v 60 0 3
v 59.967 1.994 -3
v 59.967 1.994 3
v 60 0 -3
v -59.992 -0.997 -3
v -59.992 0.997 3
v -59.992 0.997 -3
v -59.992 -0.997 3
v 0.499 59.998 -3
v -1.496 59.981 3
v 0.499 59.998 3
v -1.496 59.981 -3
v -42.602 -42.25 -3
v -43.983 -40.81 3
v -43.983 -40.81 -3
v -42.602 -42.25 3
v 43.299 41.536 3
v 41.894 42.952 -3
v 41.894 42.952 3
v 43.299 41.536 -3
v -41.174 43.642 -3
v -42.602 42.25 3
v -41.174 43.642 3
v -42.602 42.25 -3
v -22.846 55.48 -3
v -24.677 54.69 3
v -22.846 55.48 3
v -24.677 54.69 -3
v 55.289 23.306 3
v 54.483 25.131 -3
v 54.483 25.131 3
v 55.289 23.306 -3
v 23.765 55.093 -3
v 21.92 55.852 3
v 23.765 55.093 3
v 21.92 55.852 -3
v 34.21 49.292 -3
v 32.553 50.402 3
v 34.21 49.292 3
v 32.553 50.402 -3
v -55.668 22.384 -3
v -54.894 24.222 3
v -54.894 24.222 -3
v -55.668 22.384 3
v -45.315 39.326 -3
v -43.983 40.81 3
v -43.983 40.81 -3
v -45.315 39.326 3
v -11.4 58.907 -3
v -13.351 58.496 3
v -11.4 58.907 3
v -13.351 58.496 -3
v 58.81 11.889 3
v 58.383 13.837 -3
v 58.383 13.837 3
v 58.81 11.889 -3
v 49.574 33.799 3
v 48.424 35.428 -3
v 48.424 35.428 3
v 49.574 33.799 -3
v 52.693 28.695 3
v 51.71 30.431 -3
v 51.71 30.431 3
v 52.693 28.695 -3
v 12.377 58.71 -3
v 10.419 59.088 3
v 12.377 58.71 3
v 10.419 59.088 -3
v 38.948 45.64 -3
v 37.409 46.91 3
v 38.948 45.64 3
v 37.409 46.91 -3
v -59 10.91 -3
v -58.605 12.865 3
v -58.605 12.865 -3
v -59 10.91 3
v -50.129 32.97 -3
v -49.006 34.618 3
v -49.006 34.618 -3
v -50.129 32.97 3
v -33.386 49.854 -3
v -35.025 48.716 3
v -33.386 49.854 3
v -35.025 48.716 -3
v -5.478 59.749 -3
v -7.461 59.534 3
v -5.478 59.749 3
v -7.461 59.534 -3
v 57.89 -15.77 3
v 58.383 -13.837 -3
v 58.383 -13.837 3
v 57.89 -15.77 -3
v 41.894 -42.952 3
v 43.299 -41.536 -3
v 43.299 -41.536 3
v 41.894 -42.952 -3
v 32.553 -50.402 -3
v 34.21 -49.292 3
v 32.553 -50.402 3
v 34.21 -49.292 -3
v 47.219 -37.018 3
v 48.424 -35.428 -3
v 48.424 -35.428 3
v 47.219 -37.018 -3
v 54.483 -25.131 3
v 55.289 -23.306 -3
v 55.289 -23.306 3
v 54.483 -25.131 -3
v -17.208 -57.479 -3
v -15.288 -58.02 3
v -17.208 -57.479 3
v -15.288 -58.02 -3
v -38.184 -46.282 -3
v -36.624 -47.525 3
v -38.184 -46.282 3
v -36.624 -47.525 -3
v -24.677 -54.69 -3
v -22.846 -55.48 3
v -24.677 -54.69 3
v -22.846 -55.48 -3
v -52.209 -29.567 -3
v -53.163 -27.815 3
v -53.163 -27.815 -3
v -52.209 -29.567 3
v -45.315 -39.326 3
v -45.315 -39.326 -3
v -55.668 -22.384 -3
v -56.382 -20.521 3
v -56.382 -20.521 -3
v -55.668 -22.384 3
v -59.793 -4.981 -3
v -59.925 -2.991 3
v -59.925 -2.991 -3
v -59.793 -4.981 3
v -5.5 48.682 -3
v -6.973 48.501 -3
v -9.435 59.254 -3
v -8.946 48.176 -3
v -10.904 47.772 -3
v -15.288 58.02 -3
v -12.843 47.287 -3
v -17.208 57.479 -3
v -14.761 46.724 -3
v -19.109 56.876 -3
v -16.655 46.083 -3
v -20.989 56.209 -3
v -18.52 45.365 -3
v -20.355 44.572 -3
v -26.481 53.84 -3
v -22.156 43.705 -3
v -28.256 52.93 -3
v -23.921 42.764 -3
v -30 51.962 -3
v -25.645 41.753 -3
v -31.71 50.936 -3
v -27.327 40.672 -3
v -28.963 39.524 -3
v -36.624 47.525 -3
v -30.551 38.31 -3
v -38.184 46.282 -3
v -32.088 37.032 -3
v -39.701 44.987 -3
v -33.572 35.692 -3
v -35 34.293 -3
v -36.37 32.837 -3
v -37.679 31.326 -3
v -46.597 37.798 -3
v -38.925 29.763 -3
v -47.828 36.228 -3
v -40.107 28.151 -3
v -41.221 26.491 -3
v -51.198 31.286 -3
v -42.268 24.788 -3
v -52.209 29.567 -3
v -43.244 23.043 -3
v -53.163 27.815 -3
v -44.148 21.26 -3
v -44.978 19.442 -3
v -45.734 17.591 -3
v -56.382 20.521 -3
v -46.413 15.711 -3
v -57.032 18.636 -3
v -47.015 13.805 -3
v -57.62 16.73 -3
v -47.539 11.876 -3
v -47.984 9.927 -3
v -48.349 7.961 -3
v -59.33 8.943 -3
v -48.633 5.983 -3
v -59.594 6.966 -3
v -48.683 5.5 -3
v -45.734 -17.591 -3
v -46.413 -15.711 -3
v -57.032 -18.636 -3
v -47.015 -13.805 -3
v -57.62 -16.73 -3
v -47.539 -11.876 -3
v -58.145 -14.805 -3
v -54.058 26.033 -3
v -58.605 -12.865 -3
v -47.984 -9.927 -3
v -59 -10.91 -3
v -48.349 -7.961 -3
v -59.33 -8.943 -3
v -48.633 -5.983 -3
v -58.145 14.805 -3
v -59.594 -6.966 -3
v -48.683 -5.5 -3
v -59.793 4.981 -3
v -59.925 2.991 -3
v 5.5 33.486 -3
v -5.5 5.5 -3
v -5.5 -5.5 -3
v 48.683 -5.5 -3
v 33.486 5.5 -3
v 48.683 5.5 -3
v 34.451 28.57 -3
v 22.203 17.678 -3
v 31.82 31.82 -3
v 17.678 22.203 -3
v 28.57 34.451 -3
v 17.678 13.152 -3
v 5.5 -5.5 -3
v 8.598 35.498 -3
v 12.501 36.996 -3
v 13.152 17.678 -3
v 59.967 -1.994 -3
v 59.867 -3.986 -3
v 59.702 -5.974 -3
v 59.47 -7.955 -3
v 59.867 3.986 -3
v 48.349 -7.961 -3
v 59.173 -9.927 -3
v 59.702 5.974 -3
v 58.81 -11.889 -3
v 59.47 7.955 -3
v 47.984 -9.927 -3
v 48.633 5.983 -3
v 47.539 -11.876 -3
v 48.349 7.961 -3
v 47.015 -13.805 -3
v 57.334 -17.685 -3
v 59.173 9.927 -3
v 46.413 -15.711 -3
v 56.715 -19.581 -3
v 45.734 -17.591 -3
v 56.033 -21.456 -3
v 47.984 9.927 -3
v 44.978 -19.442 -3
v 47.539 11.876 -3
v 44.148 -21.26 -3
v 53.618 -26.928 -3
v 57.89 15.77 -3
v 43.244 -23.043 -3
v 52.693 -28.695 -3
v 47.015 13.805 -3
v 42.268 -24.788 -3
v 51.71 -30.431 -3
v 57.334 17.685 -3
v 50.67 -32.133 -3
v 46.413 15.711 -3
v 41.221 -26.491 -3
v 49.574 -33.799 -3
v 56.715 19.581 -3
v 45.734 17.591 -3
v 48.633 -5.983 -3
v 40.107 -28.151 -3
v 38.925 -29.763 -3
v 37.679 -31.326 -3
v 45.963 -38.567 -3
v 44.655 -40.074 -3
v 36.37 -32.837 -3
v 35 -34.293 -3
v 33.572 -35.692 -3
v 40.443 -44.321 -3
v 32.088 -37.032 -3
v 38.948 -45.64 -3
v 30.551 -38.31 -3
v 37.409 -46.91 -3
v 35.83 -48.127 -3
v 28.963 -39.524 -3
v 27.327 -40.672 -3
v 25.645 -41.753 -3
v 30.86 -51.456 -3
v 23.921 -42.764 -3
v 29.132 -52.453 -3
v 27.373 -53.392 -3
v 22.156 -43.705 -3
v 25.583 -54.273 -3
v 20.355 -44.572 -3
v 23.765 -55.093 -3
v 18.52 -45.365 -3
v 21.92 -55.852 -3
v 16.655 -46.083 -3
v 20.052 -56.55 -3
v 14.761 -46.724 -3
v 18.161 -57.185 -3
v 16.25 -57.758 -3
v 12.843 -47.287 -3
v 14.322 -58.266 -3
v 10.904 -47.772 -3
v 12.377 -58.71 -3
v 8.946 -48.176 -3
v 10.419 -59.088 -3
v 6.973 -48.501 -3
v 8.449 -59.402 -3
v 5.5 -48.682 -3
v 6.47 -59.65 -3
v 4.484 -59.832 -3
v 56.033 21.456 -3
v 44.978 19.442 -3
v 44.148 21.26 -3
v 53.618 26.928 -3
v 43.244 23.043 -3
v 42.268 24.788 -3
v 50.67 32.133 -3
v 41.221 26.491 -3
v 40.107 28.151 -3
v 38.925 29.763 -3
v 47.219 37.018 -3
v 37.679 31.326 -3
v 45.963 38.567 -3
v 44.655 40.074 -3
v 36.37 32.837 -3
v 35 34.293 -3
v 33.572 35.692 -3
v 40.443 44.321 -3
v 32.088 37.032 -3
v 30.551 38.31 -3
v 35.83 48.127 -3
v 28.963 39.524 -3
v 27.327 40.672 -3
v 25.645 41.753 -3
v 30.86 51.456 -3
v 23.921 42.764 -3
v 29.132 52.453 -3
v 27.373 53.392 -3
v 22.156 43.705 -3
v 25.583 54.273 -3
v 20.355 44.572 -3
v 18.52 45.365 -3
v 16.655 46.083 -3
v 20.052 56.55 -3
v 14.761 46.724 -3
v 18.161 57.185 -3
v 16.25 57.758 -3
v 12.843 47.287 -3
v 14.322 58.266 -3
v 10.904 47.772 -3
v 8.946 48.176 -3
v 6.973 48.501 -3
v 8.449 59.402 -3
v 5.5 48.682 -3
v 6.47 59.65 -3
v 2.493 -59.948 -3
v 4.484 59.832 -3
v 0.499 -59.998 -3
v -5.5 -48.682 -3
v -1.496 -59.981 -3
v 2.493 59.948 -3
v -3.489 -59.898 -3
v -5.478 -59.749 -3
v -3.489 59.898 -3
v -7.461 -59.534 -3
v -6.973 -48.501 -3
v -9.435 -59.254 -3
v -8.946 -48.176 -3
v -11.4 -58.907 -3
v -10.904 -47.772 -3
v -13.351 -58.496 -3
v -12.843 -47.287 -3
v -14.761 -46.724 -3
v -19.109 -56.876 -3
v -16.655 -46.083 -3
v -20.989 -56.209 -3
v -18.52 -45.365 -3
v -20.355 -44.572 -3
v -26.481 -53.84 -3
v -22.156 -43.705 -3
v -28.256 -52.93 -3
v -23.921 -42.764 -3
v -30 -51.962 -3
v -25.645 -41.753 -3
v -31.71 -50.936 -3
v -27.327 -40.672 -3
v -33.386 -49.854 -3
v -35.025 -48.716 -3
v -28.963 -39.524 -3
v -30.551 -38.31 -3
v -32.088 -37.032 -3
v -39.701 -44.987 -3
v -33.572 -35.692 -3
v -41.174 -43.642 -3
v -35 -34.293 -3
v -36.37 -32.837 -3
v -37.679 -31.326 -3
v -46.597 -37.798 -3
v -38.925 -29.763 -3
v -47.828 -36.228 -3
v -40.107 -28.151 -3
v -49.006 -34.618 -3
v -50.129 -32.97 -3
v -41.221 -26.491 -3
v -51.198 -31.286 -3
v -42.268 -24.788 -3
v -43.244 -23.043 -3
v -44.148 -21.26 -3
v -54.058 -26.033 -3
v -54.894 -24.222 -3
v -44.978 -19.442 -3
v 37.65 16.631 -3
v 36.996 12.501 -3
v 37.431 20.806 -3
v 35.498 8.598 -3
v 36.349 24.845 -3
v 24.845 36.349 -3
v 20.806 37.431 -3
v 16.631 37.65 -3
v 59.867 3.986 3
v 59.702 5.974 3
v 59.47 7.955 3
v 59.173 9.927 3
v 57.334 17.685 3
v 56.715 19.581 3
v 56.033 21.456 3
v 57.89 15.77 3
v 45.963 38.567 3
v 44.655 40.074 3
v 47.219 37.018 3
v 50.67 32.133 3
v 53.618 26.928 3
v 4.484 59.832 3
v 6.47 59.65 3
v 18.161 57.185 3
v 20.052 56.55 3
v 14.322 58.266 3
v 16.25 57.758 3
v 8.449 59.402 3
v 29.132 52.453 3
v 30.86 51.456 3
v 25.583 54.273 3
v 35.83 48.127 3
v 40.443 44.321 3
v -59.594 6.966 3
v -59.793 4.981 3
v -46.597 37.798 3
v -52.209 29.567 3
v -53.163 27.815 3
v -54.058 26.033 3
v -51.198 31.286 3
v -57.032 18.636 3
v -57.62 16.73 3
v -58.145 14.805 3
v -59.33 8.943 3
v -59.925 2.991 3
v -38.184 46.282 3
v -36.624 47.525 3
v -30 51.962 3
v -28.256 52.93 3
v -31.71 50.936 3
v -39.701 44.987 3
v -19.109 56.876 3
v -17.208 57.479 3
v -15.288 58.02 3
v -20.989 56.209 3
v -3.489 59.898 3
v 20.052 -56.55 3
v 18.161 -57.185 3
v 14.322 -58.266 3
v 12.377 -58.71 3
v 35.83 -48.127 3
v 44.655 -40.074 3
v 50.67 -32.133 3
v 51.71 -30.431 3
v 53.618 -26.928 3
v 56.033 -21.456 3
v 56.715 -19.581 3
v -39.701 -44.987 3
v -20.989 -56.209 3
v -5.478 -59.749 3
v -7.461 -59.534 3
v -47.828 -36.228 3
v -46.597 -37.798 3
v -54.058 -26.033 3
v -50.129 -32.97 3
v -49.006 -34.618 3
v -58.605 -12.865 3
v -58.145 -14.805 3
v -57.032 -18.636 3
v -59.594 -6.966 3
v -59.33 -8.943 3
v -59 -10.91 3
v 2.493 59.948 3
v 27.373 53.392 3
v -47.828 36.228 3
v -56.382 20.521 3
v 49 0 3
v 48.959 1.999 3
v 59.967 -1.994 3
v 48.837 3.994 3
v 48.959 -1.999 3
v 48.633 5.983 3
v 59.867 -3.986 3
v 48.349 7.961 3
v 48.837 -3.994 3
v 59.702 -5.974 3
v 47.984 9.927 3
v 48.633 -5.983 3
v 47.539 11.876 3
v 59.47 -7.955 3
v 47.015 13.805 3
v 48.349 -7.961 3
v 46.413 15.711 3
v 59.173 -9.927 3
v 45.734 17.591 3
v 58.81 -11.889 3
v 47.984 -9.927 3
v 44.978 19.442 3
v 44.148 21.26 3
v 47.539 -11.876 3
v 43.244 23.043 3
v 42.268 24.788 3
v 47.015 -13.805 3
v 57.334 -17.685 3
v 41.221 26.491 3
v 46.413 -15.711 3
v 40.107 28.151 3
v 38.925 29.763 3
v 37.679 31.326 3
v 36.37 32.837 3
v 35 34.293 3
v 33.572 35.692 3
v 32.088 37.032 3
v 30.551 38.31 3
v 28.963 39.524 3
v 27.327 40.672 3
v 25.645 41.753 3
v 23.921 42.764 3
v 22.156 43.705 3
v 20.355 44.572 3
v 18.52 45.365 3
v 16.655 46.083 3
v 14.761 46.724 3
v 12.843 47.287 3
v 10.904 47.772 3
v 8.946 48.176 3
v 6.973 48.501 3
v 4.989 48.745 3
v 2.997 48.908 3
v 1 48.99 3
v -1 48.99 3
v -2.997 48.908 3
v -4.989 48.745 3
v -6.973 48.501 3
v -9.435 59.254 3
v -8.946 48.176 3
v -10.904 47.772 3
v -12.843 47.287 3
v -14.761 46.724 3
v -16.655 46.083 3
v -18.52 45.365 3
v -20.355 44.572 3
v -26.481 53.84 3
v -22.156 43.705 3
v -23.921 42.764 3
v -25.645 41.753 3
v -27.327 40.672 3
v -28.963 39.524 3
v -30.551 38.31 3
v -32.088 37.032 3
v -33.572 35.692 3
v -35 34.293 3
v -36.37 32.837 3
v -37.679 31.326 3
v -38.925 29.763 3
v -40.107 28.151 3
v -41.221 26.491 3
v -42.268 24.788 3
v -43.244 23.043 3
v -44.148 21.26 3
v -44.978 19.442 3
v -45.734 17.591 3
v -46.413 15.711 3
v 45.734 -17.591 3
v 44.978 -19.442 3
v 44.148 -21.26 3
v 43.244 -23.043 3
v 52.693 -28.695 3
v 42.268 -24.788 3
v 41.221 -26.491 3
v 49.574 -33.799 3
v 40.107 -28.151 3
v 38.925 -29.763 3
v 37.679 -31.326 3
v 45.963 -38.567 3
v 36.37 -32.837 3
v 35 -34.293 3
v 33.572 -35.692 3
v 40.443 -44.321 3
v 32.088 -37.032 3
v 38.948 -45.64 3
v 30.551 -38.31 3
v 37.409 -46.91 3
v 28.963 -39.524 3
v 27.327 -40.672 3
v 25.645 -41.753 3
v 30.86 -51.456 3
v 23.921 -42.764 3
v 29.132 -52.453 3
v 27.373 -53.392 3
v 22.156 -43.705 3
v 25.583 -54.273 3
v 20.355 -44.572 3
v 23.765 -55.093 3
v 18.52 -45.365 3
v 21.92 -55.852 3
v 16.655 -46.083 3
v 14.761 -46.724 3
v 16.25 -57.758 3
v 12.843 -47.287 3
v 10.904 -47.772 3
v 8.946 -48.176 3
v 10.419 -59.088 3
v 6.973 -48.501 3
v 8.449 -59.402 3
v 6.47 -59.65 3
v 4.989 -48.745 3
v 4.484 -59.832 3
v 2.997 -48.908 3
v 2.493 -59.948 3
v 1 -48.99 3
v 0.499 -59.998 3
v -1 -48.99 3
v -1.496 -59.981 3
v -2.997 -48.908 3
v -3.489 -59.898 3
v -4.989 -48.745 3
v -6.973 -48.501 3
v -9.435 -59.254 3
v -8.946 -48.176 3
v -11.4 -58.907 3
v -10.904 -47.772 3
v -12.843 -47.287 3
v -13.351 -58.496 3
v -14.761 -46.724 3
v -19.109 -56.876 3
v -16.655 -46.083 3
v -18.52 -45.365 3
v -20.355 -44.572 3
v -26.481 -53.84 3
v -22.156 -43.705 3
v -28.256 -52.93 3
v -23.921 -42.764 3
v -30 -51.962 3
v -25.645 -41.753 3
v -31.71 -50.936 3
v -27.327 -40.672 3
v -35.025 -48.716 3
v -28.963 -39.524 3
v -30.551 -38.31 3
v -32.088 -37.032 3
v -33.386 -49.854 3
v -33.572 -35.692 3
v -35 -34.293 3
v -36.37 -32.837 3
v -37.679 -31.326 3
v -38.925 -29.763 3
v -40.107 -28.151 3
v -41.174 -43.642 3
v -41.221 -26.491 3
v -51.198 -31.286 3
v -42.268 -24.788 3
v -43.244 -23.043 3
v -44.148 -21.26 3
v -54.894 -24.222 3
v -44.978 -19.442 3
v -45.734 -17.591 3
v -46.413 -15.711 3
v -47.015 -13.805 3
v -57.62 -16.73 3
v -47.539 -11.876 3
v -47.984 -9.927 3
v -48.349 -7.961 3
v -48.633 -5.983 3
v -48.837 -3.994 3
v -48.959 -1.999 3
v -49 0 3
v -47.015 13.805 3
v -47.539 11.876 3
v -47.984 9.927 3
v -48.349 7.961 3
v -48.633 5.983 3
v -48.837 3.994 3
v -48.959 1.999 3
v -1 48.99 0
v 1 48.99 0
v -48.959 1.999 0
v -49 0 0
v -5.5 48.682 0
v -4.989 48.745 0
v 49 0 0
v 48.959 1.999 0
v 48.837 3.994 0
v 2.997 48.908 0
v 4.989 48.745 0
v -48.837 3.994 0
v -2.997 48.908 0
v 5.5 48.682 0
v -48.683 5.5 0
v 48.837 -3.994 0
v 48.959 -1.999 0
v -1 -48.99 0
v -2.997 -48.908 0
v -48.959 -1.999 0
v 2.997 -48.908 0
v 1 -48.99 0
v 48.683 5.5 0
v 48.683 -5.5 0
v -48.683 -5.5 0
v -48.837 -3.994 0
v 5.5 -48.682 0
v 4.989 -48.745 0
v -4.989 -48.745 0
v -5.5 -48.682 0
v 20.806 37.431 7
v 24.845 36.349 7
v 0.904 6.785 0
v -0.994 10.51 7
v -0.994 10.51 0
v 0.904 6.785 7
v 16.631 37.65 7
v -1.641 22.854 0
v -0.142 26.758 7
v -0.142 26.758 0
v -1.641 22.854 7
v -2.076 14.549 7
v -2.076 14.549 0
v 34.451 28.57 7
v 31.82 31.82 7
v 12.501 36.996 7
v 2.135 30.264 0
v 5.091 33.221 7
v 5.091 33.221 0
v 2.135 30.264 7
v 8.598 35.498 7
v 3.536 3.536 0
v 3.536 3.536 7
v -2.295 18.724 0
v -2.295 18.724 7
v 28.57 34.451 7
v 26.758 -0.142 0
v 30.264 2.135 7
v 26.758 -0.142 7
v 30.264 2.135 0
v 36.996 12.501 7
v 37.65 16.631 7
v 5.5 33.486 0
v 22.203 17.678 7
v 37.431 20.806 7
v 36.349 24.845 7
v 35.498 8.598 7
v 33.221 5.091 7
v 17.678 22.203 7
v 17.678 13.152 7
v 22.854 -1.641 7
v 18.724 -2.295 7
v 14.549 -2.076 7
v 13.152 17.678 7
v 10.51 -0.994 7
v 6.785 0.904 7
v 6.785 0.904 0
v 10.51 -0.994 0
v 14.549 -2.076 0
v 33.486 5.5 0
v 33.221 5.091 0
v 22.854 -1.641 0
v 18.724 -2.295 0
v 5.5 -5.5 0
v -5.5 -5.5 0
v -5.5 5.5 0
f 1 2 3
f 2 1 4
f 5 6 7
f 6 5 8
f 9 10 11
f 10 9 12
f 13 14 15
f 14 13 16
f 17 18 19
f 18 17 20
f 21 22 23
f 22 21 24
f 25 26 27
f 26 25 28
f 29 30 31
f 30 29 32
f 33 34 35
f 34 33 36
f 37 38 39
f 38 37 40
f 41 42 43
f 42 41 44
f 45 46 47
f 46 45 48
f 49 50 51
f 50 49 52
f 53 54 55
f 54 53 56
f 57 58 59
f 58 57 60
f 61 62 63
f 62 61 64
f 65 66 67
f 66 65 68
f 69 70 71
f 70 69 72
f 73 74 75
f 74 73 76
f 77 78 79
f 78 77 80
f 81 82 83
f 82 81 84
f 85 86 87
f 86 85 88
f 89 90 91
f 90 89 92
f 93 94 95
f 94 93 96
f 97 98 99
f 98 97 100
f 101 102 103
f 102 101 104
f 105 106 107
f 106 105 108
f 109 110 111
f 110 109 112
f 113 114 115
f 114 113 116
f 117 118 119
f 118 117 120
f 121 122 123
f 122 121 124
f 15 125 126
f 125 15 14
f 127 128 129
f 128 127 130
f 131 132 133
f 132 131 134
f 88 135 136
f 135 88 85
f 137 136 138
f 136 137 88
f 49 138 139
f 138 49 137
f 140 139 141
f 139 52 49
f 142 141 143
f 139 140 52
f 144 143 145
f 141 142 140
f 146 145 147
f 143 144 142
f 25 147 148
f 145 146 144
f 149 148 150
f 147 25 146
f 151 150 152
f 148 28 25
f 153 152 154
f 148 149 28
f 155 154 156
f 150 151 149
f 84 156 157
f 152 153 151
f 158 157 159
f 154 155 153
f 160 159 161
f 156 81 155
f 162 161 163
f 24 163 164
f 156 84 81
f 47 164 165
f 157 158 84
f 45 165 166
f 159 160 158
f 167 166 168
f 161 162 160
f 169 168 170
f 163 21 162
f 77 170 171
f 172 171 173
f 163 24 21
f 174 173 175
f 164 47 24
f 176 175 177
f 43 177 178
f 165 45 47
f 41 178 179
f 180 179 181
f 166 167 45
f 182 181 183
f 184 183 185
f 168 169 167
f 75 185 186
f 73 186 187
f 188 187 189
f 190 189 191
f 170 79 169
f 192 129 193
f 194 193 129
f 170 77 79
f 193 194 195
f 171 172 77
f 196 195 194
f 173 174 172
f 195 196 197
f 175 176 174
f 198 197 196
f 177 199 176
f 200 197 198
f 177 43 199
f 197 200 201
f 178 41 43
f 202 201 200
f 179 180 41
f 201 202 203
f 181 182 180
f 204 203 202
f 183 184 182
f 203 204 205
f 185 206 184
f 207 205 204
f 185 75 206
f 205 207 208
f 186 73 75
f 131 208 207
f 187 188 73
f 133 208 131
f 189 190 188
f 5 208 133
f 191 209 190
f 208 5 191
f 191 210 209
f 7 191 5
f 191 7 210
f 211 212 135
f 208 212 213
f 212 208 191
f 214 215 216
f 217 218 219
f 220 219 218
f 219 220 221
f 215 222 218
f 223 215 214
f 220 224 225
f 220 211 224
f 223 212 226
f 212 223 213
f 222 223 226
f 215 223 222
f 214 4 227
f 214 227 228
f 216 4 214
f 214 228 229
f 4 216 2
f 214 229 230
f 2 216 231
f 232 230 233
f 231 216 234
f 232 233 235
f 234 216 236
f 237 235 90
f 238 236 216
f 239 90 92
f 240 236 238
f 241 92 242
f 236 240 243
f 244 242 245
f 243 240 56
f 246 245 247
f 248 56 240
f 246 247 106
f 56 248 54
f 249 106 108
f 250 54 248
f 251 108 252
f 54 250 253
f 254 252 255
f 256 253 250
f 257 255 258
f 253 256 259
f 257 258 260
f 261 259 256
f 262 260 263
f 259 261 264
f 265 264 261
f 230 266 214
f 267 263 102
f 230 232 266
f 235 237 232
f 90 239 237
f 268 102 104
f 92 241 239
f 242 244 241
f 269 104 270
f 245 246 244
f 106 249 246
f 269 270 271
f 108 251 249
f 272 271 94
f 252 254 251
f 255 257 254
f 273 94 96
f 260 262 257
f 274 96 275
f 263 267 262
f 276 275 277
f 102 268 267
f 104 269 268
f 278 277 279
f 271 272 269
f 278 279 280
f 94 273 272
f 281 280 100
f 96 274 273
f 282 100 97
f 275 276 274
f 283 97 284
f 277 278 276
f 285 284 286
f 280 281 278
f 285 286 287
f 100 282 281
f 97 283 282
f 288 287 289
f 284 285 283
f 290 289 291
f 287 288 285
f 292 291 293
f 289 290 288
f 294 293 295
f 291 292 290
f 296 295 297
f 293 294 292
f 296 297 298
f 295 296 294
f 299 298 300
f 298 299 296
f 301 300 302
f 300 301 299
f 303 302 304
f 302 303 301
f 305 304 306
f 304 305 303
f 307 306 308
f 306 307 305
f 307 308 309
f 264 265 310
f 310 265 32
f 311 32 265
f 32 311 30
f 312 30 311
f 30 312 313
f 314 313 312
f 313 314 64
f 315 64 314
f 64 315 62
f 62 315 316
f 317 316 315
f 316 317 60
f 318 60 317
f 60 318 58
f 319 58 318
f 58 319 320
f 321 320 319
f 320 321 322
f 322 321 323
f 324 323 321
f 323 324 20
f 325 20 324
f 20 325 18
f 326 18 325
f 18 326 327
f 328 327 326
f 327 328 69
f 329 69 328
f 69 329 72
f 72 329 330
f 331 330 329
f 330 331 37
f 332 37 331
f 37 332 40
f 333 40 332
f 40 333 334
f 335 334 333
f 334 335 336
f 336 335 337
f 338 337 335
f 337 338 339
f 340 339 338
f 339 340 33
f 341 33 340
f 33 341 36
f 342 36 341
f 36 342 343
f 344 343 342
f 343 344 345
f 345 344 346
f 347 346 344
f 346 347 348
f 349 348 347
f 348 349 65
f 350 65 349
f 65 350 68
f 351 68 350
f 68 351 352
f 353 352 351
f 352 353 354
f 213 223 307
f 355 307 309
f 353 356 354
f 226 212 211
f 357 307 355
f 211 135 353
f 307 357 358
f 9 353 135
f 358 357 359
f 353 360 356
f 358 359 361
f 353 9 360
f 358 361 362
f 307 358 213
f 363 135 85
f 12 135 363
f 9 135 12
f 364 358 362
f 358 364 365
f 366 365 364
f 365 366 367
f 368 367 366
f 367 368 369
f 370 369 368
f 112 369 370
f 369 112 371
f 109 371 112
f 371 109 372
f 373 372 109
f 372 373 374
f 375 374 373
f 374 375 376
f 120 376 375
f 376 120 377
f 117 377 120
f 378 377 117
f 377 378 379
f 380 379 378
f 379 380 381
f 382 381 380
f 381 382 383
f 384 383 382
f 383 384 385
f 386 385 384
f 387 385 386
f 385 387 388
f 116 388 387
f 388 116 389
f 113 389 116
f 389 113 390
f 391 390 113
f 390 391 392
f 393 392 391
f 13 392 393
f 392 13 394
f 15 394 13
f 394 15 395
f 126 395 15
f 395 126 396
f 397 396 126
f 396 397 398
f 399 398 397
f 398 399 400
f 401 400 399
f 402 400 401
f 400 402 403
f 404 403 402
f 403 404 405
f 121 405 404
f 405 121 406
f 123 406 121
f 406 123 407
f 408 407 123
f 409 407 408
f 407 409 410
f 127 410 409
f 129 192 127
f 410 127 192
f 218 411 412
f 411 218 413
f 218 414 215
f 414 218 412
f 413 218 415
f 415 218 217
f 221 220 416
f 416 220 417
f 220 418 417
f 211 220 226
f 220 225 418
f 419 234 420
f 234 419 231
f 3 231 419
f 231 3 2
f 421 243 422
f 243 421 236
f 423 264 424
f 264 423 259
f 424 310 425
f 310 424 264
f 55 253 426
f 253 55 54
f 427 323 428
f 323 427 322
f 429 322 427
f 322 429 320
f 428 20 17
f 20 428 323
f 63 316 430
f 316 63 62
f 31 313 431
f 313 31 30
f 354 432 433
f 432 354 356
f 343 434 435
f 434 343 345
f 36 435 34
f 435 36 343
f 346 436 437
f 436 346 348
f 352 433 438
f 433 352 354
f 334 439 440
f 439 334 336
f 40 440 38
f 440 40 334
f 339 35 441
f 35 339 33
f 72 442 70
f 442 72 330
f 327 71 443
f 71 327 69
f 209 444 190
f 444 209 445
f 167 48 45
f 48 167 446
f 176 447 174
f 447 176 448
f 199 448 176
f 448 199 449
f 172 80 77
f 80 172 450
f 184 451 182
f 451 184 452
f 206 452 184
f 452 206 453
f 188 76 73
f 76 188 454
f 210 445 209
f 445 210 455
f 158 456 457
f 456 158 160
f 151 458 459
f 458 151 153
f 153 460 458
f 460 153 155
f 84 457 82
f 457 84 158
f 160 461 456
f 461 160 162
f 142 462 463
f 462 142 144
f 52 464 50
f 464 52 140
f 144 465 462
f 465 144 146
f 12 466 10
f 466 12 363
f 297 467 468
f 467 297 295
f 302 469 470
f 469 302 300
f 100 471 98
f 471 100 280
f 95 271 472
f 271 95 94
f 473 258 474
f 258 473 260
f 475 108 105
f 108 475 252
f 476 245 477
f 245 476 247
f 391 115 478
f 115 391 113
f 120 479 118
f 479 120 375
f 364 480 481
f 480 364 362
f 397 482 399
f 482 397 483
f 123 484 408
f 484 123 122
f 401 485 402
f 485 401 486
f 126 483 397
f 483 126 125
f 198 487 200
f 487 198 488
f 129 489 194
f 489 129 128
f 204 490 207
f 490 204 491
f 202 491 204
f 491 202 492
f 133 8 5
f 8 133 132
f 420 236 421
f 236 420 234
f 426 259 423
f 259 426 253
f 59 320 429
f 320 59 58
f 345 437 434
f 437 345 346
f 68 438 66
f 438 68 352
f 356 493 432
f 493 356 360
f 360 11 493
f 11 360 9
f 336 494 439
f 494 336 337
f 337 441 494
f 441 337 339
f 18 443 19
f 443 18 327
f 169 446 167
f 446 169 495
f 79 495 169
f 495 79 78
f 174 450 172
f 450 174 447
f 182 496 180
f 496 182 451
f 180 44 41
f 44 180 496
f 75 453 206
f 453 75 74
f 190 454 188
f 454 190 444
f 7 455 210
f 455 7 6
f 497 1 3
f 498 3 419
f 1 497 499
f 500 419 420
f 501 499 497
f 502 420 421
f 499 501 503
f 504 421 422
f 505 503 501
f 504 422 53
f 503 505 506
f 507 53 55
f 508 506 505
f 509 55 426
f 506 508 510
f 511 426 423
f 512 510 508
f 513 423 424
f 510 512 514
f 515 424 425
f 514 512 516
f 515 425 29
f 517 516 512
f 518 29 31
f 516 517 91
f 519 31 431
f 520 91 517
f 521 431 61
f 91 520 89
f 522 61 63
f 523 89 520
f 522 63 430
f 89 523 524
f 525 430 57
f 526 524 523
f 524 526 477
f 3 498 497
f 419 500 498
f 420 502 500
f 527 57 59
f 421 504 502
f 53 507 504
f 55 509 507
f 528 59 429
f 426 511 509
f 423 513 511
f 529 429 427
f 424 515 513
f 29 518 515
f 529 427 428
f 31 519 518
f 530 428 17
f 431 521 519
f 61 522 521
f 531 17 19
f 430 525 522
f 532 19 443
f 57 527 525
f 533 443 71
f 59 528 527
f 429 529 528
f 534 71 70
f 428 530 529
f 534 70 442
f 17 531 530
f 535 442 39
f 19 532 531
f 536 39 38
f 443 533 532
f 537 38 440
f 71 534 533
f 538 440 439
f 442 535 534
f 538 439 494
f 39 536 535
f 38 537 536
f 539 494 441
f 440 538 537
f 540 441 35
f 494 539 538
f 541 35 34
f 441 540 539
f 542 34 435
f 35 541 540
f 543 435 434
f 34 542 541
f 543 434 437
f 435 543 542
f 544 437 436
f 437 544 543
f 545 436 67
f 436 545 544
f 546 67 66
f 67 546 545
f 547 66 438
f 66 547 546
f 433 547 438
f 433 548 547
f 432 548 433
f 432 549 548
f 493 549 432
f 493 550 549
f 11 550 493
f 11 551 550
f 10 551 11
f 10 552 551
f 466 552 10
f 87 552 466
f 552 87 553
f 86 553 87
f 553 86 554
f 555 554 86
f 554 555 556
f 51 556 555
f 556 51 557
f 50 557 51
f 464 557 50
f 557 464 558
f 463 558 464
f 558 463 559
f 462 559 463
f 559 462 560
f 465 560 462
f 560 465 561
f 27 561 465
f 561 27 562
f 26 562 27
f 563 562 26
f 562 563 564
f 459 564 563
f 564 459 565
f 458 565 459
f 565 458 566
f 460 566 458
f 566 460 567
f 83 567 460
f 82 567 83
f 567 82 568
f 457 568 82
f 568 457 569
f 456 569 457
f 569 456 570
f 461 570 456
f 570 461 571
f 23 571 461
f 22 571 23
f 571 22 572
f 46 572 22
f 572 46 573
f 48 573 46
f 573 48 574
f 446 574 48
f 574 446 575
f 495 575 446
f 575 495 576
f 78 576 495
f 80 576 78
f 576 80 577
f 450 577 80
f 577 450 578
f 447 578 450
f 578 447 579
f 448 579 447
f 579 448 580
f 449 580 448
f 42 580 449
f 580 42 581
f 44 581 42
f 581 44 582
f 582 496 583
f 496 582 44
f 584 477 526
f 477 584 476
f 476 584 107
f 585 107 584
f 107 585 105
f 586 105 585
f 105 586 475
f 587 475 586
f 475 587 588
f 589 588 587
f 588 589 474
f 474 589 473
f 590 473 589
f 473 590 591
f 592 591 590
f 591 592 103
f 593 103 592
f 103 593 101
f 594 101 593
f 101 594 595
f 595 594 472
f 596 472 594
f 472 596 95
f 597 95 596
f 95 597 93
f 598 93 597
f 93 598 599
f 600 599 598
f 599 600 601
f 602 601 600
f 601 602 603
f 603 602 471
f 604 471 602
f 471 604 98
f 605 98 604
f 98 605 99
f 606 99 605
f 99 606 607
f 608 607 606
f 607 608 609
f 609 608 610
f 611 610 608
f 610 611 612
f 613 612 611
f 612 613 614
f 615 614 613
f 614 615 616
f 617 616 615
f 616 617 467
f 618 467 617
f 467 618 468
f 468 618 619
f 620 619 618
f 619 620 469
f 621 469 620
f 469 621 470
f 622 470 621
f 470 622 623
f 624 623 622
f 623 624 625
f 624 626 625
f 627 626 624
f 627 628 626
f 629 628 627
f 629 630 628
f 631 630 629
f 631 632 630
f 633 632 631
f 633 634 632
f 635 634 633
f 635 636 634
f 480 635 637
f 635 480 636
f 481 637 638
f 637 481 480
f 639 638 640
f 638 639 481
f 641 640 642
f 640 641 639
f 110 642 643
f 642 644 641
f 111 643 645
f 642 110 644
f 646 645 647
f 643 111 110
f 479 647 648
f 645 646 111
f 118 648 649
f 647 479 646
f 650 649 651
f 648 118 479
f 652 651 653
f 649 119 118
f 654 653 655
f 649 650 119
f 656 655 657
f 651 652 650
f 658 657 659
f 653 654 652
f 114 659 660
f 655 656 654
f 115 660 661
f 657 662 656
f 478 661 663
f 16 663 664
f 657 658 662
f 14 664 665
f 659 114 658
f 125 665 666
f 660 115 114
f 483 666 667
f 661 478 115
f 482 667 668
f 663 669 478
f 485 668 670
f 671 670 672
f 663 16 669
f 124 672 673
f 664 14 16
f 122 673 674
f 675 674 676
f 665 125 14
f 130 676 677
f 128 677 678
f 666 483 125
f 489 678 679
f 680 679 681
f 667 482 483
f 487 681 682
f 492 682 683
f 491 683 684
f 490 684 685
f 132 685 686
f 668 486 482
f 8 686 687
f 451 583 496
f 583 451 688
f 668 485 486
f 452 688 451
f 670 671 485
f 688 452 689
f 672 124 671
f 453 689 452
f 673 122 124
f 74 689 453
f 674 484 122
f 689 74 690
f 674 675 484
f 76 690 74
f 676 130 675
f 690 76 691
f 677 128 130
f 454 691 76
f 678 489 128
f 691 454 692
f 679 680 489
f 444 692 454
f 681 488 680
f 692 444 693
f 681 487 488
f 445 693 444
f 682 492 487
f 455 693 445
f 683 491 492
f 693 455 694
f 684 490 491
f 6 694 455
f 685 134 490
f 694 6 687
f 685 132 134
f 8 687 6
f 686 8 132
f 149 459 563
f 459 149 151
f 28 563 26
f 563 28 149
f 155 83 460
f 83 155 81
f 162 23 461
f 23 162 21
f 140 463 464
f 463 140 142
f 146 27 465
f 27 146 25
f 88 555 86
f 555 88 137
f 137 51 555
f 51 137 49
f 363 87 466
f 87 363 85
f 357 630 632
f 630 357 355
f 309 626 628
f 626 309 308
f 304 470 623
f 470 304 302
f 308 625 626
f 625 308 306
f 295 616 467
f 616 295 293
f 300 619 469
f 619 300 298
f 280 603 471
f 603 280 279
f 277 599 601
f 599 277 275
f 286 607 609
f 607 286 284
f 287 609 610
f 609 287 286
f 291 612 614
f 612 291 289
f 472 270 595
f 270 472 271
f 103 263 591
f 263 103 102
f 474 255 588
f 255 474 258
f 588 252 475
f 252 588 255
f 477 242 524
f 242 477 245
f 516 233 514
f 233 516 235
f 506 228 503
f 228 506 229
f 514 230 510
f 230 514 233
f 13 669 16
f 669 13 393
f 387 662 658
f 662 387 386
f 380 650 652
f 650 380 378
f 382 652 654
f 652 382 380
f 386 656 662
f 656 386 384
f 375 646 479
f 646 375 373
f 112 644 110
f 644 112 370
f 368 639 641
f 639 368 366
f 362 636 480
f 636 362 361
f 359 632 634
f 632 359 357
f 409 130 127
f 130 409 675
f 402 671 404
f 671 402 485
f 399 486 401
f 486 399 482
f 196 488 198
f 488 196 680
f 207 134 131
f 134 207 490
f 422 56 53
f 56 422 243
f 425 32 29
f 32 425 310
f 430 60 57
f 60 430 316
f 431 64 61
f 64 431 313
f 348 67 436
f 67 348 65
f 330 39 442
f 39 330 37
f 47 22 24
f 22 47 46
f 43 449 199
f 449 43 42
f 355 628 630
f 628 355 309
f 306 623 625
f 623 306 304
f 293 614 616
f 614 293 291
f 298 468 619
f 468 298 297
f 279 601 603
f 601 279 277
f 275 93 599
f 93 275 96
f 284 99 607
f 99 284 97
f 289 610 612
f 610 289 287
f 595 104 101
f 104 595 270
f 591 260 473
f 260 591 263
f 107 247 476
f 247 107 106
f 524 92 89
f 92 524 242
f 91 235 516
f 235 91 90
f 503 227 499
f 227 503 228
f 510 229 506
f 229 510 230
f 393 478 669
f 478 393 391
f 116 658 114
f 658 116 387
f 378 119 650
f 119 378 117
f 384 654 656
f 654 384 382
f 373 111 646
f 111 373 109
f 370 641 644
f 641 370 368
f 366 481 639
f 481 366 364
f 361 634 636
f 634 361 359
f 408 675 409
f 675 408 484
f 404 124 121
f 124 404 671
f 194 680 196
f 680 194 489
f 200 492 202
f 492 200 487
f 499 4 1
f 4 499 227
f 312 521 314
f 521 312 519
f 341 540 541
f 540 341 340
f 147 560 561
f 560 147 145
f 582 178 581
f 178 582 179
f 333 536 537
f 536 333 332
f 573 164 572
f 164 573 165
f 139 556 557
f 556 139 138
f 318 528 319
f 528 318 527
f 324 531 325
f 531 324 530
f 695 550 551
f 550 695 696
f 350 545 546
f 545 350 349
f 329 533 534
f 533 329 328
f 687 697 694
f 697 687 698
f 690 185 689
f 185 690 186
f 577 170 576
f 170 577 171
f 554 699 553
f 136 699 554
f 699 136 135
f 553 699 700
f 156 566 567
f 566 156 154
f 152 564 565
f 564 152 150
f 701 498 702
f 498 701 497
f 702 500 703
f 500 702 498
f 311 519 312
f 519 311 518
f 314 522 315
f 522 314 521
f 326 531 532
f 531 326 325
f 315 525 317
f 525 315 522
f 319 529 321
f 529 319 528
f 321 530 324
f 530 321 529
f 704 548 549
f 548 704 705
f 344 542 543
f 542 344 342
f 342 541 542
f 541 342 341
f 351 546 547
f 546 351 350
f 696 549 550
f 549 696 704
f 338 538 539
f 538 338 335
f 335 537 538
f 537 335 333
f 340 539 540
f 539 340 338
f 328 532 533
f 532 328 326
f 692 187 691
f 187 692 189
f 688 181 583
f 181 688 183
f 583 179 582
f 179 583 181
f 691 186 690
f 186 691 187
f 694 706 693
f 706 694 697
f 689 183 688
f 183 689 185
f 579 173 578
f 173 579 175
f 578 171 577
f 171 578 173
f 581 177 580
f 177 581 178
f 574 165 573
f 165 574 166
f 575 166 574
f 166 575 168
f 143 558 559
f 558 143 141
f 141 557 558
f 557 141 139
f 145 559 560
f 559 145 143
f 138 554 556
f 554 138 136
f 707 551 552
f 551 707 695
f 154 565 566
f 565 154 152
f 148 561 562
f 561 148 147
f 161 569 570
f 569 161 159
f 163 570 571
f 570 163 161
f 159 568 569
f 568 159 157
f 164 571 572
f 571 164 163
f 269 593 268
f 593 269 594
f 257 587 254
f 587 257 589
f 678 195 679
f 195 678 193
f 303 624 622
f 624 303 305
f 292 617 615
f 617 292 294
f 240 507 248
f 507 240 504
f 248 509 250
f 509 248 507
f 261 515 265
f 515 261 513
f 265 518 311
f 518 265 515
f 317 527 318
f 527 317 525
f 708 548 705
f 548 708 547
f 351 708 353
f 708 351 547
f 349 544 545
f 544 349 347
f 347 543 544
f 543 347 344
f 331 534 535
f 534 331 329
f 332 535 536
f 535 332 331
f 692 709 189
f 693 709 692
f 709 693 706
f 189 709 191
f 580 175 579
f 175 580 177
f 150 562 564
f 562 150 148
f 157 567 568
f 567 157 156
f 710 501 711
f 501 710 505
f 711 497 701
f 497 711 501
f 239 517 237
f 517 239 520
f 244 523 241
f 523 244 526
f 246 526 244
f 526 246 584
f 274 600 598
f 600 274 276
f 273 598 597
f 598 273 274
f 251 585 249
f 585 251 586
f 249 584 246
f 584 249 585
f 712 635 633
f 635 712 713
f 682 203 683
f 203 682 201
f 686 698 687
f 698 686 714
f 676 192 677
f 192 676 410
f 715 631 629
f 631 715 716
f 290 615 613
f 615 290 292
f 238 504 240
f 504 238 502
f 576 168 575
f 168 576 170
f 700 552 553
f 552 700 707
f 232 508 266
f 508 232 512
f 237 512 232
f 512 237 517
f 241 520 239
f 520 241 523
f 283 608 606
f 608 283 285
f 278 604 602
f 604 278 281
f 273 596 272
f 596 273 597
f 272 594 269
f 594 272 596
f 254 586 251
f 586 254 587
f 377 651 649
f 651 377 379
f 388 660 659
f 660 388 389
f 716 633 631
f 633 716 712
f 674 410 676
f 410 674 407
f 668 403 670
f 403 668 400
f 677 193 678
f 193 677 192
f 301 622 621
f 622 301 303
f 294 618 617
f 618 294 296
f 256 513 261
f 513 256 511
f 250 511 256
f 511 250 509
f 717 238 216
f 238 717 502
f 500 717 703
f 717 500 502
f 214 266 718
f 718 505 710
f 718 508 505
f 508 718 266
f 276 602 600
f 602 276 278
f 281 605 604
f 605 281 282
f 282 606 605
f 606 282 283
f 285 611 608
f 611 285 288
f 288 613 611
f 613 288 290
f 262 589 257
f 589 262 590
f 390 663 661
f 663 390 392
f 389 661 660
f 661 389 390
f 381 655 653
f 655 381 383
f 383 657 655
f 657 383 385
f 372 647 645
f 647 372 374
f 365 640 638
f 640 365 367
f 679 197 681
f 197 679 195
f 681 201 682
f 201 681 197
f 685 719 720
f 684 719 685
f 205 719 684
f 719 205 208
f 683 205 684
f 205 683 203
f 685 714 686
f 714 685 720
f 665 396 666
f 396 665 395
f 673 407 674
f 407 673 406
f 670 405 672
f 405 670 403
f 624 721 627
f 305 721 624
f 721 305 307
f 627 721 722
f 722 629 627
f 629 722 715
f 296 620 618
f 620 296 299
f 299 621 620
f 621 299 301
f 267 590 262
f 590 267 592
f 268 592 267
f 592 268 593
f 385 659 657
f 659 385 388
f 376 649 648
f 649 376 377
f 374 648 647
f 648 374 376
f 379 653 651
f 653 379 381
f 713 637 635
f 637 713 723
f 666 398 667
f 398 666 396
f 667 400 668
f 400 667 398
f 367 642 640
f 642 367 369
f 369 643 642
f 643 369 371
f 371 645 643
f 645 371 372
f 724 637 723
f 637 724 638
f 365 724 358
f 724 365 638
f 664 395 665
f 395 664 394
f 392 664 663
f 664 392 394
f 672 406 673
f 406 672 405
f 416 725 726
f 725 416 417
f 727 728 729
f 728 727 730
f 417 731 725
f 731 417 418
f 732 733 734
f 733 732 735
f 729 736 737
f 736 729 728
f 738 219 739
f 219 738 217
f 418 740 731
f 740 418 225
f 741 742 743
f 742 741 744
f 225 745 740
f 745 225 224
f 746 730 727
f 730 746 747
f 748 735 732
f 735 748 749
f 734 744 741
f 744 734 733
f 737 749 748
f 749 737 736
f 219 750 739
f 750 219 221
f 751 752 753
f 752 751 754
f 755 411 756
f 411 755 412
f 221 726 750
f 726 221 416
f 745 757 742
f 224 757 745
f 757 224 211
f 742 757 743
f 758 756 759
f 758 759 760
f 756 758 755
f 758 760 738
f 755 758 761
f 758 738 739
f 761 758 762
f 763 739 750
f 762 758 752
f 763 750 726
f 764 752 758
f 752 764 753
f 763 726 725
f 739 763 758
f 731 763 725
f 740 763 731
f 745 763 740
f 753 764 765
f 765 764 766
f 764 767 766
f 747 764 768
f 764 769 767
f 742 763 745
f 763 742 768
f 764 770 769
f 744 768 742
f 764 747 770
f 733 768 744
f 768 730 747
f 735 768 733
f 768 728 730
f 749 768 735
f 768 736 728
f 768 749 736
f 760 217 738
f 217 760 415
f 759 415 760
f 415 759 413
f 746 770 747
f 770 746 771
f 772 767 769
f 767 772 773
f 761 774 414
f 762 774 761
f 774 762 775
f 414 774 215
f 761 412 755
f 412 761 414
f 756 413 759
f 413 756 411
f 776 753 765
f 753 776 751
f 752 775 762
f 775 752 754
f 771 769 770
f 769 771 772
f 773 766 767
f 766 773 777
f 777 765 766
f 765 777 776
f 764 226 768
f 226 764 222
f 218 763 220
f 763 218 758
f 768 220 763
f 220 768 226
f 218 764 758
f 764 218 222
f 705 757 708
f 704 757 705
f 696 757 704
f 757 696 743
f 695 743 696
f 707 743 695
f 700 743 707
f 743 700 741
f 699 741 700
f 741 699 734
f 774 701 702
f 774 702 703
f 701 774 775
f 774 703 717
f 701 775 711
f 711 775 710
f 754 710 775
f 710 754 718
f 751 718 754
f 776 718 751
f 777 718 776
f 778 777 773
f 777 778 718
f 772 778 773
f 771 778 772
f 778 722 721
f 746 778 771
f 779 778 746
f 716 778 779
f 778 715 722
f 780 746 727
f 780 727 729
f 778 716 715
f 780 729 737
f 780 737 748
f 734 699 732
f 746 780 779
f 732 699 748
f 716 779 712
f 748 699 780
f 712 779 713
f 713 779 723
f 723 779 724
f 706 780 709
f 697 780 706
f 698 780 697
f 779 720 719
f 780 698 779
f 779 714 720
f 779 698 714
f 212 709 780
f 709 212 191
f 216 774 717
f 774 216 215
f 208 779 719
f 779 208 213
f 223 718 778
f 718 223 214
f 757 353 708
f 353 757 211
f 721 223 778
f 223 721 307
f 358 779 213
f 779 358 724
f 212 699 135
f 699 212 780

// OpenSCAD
outerdiameter=120;
ringwidth=11;
height=6;
module axelpart()
{
    translate([25,0,2]) {
   difference(){
    cylinder(h=10, r=20, center=true);
     cube([6.4,6.4,100],true);
    }
}
}

module ring() {
    
    $fa =0.1;
    color("Lime") 
    
    difference() {
  
    cylinder(h=height, r=outerdiameter/2, center=true);
         cylinder(r=(outerdiameter/2)-ringwidth,h=height+2,center=true) ;  
}
}
union(){
ring();
spoke();
rotate(a=90, v=[0,0,1]) {spoke(); }

rotate(a=45, v=[0,0,1]){
axelpart();
}
}
module spoke()
{
 translate([0,0,-1.5]){
     cube([outerdiameter-5,11,3],true);
     }
}

echo(version=version());
